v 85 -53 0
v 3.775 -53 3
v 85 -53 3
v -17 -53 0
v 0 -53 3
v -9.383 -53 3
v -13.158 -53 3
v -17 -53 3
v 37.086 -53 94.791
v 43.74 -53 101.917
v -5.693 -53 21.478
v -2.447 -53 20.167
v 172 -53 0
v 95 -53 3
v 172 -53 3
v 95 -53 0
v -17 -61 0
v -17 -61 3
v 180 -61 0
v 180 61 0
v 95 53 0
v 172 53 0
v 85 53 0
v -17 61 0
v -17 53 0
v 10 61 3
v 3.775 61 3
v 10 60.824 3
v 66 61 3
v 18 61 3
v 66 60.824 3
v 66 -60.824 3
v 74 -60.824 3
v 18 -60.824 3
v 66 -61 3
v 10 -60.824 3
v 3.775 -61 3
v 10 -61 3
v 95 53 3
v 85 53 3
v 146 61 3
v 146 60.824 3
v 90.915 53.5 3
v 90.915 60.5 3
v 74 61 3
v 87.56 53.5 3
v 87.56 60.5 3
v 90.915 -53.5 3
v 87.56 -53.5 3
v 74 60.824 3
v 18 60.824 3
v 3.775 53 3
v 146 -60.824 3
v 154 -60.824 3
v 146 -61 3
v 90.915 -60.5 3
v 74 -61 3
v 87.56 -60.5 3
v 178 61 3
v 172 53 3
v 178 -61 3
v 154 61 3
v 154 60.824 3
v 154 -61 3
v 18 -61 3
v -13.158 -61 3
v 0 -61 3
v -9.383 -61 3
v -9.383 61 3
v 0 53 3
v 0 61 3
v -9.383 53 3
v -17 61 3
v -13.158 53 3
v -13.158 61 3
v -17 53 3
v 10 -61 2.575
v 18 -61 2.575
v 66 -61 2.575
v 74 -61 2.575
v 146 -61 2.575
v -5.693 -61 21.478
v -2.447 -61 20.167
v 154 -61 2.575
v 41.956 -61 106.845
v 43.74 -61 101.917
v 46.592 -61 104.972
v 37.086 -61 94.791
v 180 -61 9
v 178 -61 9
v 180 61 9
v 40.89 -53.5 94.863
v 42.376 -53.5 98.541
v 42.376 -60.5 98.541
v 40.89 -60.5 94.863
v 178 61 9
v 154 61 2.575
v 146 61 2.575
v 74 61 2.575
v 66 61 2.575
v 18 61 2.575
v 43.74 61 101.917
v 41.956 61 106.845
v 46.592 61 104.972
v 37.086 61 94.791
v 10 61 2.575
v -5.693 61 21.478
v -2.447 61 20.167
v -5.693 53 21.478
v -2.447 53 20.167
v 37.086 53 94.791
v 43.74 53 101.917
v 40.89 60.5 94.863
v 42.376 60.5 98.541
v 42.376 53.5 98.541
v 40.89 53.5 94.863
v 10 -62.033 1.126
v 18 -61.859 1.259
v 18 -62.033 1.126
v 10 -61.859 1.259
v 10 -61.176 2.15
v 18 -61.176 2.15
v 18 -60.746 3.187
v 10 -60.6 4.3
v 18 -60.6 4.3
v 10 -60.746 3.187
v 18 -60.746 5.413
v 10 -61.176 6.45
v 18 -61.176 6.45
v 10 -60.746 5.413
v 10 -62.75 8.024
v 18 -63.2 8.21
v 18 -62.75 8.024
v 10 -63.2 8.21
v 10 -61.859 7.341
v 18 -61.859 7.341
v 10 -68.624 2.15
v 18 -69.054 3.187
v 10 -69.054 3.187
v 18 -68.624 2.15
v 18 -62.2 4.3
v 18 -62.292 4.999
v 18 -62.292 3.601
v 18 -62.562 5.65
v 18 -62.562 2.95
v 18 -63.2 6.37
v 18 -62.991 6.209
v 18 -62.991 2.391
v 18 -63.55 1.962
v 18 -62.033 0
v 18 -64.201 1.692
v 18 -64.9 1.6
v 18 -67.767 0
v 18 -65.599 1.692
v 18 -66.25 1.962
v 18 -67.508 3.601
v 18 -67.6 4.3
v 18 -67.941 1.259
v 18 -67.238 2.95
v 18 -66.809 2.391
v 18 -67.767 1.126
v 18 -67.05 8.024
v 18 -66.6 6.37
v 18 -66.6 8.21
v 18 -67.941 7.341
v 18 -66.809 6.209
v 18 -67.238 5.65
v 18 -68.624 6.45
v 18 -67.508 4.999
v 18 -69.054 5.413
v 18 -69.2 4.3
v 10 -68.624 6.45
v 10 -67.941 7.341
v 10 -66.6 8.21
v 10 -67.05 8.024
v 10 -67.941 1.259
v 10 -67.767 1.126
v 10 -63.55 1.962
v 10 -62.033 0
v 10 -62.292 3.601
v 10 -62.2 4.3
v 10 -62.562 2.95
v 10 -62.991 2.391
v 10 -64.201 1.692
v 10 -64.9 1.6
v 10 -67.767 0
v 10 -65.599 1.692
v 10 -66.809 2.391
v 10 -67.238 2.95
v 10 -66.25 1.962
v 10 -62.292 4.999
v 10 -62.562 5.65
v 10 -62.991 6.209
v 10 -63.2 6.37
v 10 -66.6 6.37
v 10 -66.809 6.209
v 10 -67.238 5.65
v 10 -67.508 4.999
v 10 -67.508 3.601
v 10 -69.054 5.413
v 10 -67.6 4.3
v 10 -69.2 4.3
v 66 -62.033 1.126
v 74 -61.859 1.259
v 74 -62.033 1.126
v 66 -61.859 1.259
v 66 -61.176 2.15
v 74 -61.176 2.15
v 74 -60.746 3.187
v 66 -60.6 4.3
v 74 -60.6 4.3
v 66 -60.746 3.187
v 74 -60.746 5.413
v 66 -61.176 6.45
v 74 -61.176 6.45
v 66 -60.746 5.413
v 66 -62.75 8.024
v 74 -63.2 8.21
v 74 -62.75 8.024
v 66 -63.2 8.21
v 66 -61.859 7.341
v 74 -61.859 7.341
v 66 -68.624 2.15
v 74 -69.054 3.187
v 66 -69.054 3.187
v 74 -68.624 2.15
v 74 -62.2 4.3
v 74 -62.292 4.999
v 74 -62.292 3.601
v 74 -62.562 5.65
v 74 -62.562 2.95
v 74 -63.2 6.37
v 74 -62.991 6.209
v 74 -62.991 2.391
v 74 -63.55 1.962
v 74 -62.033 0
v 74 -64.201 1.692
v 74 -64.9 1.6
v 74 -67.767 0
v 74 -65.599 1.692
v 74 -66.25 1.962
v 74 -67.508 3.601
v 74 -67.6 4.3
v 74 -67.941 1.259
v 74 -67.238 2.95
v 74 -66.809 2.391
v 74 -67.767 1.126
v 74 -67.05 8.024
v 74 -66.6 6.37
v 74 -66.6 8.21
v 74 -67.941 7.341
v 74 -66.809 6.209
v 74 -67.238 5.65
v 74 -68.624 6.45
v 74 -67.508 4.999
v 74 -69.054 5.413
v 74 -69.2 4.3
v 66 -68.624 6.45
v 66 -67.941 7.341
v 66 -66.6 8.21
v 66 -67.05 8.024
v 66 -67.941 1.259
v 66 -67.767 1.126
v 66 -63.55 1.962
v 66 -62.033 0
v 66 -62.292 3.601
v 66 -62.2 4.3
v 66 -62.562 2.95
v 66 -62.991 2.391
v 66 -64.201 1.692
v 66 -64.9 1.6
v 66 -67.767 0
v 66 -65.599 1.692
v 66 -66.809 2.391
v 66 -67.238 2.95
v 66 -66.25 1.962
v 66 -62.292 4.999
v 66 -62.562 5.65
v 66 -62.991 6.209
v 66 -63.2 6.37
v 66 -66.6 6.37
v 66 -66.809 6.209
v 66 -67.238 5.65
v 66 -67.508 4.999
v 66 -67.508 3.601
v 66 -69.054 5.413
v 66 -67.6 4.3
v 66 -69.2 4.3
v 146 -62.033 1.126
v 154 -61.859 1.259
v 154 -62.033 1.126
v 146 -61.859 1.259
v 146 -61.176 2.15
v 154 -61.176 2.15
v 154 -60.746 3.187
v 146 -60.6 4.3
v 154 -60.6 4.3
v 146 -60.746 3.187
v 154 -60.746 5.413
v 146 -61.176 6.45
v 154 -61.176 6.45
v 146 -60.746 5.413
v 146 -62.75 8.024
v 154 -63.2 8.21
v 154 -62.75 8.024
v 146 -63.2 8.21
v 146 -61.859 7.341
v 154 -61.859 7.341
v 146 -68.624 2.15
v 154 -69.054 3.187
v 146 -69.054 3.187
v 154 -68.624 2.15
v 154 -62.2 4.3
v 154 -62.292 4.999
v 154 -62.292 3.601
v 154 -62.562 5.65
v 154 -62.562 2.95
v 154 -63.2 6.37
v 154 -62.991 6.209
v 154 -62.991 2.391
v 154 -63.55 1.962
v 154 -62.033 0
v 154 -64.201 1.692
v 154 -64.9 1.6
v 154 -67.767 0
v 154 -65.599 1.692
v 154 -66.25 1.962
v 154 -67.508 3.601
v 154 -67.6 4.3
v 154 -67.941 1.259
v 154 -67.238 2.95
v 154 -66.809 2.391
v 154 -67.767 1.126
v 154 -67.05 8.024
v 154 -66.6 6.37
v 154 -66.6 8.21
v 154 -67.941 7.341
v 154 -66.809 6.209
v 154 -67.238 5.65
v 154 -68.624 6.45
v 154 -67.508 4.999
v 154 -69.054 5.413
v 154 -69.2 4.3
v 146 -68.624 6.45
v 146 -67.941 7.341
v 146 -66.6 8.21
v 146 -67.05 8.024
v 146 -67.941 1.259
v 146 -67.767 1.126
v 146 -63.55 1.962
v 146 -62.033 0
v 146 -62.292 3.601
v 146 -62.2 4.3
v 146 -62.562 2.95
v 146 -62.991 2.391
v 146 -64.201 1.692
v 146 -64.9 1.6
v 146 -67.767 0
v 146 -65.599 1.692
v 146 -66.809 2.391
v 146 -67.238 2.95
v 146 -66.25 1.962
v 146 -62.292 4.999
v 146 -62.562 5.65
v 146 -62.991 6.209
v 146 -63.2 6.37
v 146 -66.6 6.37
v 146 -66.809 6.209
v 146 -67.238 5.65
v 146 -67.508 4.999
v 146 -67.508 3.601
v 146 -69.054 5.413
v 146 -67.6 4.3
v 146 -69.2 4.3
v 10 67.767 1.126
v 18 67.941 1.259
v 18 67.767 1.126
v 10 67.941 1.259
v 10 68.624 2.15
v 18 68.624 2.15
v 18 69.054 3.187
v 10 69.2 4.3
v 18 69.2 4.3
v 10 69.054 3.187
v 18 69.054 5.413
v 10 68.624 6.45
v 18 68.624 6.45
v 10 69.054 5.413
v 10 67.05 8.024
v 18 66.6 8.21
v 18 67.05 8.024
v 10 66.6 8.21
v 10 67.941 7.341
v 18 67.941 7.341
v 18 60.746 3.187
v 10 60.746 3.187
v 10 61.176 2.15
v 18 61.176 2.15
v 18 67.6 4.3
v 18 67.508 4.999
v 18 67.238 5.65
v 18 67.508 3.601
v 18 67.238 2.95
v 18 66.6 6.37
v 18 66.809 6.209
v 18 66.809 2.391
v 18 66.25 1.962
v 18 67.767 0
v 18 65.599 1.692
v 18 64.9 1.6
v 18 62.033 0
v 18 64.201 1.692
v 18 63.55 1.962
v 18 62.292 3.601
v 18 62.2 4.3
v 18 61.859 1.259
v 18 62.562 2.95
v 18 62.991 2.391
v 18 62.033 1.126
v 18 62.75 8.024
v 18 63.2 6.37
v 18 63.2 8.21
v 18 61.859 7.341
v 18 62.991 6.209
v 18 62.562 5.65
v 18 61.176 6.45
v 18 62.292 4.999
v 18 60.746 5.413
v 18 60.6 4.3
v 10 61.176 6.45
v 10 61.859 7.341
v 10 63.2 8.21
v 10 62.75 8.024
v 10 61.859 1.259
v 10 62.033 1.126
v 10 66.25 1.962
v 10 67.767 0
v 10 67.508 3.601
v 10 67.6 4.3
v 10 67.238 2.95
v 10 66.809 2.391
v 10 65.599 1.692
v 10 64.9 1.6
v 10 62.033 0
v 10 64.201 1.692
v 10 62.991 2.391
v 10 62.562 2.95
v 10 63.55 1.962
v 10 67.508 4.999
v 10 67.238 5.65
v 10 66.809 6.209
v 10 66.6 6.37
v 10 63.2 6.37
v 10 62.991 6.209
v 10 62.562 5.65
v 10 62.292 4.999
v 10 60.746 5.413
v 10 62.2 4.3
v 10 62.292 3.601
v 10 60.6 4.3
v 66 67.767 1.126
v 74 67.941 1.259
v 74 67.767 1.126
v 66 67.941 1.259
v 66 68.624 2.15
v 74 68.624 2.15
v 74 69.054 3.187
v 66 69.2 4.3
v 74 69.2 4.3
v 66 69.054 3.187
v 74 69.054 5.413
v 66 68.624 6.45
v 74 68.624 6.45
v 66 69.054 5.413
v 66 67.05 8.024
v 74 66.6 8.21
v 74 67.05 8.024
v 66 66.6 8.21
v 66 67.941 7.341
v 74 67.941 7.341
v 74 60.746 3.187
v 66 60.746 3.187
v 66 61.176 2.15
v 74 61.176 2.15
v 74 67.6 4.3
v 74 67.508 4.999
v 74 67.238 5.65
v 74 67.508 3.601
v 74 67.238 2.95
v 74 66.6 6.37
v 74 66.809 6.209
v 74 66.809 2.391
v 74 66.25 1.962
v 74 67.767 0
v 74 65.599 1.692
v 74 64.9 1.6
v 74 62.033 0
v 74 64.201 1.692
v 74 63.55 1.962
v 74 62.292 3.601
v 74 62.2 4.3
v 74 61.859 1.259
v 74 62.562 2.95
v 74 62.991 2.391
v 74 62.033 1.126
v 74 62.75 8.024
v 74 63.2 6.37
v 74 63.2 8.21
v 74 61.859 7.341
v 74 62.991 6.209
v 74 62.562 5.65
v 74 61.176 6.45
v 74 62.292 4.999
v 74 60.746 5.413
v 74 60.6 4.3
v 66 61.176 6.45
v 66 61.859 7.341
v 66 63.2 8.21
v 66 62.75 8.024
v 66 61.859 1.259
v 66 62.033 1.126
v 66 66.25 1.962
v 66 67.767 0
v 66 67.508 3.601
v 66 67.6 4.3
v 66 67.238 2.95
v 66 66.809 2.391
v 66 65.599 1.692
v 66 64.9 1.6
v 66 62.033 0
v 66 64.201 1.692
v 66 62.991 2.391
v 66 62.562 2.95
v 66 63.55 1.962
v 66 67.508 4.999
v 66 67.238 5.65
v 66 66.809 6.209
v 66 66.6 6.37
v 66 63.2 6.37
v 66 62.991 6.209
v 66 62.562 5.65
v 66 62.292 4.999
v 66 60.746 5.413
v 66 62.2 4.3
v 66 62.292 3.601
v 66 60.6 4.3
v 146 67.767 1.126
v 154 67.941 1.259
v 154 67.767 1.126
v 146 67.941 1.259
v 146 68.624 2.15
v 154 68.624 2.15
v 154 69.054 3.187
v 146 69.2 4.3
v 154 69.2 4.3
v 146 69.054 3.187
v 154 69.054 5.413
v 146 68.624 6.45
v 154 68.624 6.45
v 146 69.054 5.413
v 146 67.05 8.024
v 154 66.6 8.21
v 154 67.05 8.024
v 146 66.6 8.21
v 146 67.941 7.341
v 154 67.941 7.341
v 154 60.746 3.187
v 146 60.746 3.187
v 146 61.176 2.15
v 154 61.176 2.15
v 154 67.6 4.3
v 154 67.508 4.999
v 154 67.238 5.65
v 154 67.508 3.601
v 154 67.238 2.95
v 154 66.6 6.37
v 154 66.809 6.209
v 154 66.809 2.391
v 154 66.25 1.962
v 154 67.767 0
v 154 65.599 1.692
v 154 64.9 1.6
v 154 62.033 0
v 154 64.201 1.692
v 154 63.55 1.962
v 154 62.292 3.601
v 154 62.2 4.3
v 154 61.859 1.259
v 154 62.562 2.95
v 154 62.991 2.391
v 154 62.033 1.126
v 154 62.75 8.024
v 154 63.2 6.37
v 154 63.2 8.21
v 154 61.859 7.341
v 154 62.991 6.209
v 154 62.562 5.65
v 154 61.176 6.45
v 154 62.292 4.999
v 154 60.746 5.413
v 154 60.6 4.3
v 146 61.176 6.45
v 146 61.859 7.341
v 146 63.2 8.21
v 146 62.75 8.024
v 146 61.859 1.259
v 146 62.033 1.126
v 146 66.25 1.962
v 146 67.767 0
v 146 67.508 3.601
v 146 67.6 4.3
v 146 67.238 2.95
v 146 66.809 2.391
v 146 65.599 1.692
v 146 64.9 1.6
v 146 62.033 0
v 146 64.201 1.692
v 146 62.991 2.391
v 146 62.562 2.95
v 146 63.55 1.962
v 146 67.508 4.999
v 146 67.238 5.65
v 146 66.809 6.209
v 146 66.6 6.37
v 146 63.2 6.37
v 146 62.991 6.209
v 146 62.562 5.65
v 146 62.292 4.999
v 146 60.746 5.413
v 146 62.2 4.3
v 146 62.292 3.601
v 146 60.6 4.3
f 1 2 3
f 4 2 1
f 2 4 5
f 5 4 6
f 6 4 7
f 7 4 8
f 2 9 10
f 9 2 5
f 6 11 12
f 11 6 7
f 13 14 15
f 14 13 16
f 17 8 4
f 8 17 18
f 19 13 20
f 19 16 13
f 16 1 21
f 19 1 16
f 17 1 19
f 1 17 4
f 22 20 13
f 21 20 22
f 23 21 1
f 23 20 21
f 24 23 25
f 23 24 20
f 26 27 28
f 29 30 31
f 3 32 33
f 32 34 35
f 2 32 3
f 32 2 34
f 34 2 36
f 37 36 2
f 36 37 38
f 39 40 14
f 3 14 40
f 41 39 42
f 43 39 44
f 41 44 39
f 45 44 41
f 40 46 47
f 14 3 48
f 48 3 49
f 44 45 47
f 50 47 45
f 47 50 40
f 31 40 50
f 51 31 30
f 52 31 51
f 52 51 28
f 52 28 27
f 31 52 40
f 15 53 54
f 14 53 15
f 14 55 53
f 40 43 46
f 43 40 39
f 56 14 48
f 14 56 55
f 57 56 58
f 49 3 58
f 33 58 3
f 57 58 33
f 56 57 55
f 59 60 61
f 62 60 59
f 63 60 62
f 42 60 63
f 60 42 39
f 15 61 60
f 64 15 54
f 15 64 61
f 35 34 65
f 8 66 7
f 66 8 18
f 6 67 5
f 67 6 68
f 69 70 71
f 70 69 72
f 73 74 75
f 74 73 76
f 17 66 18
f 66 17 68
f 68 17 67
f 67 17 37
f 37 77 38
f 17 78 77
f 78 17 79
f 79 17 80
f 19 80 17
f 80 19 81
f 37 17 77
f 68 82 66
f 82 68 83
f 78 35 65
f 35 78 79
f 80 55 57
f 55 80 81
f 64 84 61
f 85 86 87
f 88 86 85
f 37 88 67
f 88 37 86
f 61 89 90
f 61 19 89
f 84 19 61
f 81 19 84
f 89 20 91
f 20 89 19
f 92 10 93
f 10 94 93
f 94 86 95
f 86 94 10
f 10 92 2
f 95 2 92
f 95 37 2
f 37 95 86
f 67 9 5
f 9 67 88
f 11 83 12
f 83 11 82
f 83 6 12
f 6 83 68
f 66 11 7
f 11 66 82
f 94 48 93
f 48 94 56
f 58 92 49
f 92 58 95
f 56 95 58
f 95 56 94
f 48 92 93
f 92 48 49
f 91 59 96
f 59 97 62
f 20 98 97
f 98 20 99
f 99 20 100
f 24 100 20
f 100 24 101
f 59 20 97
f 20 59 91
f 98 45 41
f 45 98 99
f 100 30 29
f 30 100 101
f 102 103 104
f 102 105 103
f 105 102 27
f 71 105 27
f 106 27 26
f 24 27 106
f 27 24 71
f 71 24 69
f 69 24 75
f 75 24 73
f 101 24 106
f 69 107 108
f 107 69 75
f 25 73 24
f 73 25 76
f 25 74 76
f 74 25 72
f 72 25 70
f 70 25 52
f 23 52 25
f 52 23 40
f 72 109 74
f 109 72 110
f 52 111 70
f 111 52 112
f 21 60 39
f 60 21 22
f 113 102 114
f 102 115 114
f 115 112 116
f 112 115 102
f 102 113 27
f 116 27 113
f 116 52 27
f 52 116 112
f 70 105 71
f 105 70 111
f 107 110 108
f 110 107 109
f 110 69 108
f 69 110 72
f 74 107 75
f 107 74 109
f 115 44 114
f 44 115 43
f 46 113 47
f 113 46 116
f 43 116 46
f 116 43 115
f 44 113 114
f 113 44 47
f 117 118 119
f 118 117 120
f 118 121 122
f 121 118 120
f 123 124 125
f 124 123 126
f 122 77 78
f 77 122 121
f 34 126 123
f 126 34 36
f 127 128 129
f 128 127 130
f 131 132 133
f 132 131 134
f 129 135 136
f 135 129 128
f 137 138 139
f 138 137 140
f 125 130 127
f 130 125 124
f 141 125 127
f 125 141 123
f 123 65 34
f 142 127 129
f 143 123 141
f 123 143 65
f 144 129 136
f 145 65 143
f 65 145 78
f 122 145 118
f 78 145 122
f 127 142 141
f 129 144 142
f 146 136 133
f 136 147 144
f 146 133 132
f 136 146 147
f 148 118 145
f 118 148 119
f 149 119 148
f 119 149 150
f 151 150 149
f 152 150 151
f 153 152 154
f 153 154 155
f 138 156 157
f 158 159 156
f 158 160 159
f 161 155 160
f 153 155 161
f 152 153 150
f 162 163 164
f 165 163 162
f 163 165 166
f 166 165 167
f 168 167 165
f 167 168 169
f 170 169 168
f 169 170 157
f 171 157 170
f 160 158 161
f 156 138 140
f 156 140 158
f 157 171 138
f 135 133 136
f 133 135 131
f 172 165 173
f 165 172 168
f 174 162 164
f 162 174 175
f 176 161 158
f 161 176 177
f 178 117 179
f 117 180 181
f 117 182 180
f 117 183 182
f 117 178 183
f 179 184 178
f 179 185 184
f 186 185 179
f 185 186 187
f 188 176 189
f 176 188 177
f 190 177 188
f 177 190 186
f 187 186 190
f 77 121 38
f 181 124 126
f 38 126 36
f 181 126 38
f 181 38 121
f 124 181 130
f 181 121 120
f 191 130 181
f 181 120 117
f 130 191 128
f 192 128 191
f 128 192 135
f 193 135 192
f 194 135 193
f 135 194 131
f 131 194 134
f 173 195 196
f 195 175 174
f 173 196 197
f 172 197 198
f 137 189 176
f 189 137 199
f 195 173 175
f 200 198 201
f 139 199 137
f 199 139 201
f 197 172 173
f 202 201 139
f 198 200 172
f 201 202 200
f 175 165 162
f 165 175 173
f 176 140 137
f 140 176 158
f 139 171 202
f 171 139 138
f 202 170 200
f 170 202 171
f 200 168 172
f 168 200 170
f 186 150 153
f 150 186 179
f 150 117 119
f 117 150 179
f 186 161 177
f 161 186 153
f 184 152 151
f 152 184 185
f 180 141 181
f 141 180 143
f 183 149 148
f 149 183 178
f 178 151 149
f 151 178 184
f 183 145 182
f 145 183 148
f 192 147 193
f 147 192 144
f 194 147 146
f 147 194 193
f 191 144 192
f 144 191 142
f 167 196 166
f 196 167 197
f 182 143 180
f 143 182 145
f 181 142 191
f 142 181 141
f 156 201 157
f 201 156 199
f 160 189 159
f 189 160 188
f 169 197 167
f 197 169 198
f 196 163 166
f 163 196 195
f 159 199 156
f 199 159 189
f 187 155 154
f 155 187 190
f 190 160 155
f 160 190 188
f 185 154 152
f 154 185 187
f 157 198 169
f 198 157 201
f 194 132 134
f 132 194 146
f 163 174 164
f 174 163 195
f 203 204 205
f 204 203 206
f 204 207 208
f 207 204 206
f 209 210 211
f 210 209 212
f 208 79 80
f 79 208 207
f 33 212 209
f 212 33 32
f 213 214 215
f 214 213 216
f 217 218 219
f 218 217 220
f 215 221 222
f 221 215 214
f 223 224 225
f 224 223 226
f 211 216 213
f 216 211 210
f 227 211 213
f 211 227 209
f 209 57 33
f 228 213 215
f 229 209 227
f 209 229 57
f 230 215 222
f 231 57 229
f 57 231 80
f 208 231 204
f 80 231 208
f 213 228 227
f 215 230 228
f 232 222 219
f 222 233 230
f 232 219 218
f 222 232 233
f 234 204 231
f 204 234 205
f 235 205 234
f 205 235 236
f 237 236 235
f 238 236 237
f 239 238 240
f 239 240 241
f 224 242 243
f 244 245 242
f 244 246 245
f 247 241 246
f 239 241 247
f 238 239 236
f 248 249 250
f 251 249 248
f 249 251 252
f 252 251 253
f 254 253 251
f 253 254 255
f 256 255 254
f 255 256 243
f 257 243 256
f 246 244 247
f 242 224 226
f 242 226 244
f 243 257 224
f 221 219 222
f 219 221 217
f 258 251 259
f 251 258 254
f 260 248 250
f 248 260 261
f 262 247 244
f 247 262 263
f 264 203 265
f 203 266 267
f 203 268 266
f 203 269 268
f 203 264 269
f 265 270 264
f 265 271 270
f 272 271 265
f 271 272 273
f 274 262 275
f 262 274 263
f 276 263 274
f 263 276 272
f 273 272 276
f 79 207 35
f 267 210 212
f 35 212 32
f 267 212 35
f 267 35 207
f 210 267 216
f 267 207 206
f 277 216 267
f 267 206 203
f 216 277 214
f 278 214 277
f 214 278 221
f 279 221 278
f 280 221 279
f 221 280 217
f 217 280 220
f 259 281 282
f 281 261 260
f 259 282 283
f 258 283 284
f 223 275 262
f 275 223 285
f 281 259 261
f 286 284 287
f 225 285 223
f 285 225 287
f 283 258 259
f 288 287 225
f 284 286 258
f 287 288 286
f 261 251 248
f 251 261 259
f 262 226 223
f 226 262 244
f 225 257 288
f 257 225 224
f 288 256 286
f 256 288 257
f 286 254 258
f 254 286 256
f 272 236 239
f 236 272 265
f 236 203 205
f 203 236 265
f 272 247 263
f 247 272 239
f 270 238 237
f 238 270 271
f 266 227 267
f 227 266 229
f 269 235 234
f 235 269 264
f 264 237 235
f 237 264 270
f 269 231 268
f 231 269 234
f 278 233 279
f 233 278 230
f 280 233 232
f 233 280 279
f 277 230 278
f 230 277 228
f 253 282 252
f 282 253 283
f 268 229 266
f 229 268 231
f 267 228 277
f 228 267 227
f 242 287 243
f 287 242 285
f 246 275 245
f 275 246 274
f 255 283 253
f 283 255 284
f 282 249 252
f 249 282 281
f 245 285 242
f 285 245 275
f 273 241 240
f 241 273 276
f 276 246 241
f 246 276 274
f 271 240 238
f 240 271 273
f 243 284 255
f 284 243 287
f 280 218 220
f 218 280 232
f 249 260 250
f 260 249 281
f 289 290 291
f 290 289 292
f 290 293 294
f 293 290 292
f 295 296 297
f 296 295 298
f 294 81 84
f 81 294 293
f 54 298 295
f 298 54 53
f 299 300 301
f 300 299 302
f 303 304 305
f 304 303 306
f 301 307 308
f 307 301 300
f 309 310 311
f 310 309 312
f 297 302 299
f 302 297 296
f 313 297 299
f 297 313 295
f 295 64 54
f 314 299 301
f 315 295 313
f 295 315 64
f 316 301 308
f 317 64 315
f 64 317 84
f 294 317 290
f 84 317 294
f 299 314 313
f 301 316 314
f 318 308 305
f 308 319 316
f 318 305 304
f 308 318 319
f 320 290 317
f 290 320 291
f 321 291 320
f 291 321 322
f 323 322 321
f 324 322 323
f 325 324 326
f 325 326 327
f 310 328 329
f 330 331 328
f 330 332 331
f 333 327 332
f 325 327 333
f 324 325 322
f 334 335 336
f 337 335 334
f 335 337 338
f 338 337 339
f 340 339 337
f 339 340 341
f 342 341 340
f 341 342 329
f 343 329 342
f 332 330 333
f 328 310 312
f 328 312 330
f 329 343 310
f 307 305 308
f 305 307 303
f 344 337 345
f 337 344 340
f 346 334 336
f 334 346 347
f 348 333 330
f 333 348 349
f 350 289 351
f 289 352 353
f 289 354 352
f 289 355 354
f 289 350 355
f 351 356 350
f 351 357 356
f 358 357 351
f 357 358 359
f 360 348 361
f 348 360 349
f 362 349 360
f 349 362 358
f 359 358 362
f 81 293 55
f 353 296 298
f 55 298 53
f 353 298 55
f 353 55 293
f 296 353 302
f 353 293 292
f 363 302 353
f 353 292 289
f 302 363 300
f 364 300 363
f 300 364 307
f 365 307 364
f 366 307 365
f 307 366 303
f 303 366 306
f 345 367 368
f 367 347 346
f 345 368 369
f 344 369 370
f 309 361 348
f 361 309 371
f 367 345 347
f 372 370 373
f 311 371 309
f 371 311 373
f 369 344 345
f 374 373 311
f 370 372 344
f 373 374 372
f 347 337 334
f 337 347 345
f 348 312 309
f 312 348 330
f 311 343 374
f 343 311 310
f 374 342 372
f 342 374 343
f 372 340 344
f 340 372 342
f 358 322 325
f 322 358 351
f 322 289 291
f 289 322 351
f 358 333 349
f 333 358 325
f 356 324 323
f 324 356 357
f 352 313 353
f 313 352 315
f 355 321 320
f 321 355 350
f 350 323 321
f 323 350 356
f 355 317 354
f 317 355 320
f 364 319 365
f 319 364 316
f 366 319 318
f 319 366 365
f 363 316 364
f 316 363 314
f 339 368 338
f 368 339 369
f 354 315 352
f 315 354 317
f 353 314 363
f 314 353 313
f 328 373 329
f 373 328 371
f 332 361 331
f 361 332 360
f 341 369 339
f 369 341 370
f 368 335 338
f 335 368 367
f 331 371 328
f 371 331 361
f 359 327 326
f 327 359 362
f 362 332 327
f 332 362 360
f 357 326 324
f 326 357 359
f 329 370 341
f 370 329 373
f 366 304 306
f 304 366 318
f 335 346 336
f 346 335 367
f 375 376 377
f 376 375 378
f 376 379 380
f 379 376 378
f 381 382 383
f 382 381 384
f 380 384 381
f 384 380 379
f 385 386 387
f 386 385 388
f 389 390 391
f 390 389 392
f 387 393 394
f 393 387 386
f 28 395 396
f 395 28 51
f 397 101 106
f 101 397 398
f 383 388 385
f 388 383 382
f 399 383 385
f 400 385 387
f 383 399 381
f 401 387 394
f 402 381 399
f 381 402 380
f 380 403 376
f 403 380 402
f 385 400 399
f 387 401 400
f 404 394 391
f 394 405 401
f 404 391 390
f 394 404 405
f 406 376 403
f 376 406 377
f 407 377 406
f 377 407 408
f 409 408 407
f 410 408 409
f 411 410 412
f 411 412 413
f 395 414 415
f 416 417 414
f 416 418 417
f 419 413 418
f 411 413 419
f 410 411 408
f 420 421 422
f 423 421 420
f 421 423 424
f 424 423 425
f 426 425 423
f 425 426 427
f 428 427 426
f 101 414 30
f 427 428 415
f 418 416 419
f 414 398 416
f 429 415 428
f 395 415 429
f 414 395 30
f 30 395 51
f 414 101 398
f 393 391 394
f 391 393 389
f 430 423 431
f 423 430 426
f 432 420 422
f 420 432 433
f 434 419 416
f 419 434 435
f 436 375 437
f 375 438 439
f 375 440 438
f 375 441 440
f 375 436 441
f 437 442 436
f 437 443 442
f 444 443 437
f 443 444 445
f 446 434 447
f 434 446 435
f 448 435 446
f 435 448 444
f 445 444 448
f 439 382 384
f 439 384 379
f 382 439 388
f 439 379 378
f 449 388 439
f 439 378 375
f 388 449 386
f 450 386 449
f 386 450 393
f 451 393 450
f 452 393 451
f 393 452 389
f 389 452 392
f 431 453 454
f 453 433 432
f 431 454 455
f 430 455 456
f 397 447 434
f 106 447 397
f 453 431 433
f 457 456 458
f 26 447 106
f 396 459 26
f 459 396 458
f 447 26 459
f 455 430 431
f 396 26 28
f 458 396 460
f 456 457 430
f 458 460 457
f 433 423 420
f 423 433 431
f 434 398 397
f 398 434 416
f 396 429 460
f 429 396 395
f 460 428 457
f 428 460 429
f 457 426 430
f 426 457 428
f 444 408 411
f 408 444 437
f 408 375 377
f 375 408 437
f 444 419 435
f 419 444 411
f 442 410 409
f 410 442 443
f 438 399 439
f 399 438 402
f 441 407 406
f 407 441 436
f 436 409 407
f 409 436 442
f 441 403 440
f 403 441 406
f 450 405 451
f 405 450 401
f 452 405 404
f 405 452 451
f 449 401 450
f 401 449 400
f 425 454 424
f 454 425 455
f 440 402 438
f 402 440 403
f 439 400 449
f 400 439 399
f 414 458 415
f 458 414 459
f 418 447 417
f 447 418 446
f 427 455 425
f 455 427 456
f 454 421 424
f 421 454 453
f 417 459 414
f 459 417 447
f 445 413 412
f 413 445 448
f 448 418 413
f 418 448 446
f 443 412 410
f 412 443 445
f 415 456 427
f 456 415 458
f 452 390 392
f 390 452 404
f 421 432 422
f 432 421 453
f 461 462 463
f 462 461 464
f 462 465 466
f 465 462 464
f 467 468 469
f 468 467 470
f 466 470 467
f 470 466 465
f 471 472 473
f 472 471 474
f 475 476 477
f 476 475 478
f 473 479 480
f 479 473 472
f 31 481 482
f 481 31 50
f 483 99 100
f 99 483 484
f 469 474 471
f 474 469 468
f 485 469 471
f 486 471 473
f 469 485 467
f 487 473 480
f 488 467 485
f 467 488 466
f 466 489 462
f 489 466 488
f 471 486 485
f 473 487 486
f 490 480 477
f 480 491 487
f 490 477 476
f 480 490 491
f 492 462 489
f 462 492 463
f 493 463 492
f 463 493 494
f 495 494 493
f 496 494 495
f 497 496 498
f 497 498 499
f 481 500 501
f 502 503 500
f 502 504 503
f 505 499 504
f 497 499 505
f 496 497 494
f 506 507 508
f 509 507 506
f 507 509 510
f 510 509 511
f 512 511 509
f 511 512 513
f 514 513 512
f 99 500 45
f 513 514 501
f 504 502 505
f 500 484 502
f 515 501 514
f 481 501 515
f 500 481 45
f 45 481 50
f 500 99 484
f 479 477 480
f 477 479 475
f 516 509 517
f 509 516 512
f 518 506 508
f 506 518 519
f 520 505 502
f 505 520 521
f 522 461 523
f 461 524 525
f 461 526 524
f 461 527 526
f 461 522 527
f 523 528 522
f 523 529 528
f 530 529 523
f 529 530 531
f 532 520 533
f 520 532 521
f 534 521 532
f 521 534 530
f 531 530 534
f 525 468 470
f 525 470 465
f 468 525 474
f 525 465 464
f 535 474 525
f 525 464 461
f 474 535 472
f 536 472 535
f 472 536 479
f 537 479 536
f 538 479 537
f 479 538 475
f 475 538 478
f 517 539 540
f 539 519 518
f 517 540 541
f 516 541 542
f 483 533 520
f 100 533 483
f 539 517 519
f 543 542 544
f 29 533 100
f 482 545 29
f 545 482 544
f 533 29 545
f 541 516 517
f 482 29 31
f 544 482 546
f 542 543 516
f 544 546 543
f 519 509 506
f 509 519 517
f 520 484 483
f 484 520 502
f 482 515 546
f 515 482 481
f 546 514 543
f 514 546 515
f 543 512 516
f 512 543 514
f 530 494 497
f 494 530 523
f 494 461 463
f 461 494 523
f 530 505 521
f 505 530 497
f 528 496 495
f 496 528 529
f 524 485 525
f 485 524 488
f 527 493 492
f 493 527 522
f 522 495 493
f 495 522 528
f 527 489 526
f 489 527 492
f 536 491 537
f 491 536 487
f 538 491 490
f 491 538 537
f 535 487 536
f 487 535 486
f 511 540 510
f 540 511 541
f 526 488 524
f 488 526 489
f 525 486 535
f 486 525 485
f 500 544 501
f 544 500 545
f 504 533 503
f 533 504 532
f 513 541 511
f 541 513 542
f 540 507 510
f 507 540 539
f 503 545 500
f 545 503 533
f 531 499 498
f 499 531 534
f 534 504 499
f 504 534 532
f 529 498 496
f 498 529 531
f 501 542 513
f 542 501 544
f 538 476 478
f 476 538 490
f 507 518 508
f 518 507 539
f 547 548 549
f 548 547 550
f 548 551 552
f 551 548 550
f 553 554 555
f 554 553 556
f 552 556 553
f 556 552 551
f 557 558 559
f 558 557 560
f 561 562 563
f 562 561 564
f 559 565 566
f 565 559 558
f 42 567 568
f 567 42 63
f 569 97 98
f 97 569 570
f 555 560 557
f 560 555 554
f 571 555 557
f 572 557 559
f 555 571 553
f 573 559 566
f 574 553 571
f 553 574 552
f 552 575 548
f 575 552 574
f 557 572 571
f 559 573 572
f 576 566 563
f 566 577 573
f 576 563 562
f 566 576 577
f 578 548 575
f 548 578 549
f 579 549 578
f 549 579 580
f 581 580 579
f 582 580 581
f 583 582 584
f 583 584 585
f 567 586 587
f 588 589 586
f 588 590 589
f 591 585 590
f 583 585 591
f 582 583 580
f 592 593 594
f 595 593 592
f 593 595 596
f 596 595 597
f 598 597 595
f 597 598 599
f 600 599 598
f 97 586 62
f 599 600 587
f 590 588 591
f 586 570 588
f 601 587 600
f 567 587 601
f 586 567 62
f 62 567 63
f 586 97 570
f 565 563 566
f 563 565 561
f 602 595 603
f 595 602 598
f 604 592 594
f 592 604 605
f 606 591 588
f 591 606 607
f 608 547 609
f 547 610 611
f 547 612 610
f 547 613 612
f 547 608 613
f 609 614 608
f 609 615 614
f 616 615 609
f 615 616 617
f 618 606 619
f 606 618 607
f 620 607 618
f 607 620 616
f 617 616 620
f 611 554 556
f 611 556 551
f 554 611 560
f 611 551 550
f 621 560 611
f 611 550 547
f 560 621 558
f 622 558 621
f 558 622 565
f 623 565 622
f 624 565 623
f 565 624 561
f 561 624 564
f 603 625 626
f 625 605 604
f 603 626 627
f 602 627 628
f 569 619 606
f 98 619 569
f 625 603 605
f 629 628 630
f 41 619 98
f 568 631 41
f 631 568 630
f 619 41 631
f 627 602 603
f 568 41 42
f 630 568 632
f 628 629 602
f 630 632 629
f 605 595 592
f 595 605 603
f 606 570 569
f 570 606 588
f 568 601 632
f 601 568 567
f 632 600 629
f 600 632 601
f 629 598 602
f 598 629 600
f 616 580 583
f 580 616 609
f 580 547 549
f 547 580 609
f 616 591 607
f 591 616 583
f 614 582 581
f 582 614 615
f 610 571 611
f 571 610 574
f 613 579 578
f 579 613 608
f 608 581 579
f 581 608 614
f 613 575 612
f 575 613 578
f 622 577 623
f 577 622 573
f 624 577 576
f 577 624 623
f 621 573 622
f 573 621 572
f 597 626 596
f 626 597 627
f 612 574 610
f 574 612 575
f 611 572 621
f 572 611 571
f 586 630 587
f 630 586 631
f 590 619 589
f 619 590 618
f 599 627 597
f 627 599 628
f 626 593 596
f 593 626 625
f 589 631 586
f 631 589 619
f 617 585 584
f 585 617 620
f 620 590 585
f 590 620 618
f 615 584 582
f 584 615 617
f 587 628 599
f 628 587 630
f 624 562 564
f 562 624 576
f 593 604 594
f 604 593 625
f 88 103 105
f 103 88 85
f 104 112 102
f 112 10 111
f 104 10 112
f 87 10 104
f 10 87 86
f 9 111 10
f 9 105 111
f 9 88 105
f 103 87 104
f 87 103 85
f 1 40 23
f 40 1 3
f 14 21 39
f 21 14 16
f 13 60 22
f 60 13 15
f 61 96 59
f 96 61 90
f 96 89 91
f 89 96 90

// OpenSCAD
// Desk Display stand: Lenovo Tab M10 FHD REL (TB-X605L/LC), landscape, Echo-Show style lean.
// One piece, prints with NO supports, flat on the bed. Open truss design = least possible filament.
//
// Tablet: 242 x 168 x 8.1 mm (Lenovo spec). If the tablet is in a case, raise 'case' by the extra thickness.
// Everything is a parameter. Set preview_ghosts=true to see the tablet and a speaker in the model.

$fn = 24;

// ---------- tablet ----------
TW = 242;        // width in landscape
TH = 168;        // height in landscape
TT = 8.1;        // thickness
case = 0;        // extra thickness if it wears a case (mm)
clear = 0.6;     // slack in the bottom lip

// ---------- stand ----------
lean   = 22;     // degrees back from vertical (Echo Show 8 is about 20-25)
zb     = 3;      // rail / platform thickness
rail_y = 57;     // rails sit under the tablet at +-57 mm from the centre
rail_w = 8;      // rail width
post_t = 3.5;     // post thickness
post_w = 8; 
strut_t = 3;  
strut_w = 7;
post_len = 112;  // how far up the tablet back the posts reach (tablet is 168 tall)
bar_h  = 13;     // height of the wedge that joins the posts and touches the tablet back
bar_d  = 5;      // depth of that wedge
lip_h  = 15;     // front lip height measured along the tablet
lip_t  = 3.5;

// ---------- speaker platform (behind the stand) ----------
x_d   = 90;      // where the platform starts (the strut lands here)
pd    = 90;      // platform depth. Speaker footprint should fit in rail_y*2-rail_w wide x this
rear_lip = 6;    // little wall at the very back so the speaker cannot slide off

// ---------- cable clips ----------
clip_id  = 5.4;  // fits a 3.5 mm AUX cable and a normal USB cable
clip_wall = 1.6;
clip_len = 8;
clip_slit = 3.4; // slit is narrower than the cable so it snaps in
clip_x = [14, 70, 150];

preview_ghosts = false;

TTT = TT + case;
th = lean;
x_end = x_d + pd;

function Lp(x, z) = [x * cos(th) + z * sin(th), zb - x * sin(th) + z * cos(th)];  // tablet-frame -> world (x, z)

module L() { translate([0, 0, zb]) rotate([0, th, 0]) children(); }

// extrude a 2D shape that lives in the x/z plane, at world y, width w
module slab(y, w) { translate([0, y, 0]) rotate([90, 0, 0]) linear_extrude(height = w, center = true) children(); }

module member(p1, p2, t, y, w) {
    slab(y, w) hull() { translate(p1) circle(d = t, $fn = 16); translate(p2) circle(d = t, $fn = 16); }
}

module clip(y, x, side) {
    // C-shaped ring around the x axis, opening upwards, sitting outside the rail
    od = clip_id + 2 * clip_wall;
    translate([x, y + side * (rail_w / 2 + od / 2 - 0.4), od / 2])
    rotate([0, 90, 0]) translate([0, 0, -clip_len / 2])
    difference() {
        union() {
            cylinder(d = od, h = clip_len);
            // flat foot so it sticks to the bed (local +x = down)
            translate([0, -od / 3, 0]) cube([od / 2, 2 * od / 3, clip_len]);
        }
        translate([0, 0, -1]) cylinder(d = clip_id, h = clip_len + 2);
        // slit pointing up (world +z = local -x after rotate)
        translate([-od, -clip_slit / 2, -1]) cube([od, clip_slit, clip_len + 2]);
    }
}

module stand() {
    for (s = [-1, 1]) {
        y = s * rail_y;
        // rail: from in front of the lip to the back of the platform
        slab(y, rail_w) translate([-17, 0]) square([x_end + 17, zb]);

        // post: leans with the tablet, behind it
        L() translate([0, y - post_w / 2, 0]) cube([post_t, post_w, post_len]);

        // lip: the tablet's bottom edge sits against it
        L() translate([-TTT - clear - lip_t, y - rail_w / 2, -10]) cube([lip_t, rail_w, 10 + lip_h]);

        // strut: top of the post down to the platform front
        p1 = Lp(post_t / 2, post_len - 8);
        member(p1, [x_d, zb / 2], strut_t, y, strut_w);
    }

    // wedge across the top of the posts: the tablet leans on its flat face; steep underside prints without supports
    L() translate([0, rail_y + post_w / 2, 0]) rotate([90, 0, 0])
        linear_extrude(height = 2 * rail_y + post_w)
            polygon([[0, post_len - bar_h], [0, post_len], [bar_d, post_len]]);

    // platform cross bars
    slab_bar = 8;
    translate([x_d - 5, -rail_y - rail_w / 2, 0]) cube([10, 2 * rail_y + rail_w, zb]);
    translate([x_end - slab_bar, -rail_y - rail_w / 2, 0]) cube([slab_bar, 2 * rail_y + rail_w, zb]);
    // little lip at the back
    translate([x_end - 2, -rail_y - rail_w / 2, 0]) cube([2, 2 * rail_y + rail_w, zb + rear_lip]);

    // cable clips on both outer sides
    for (s = [-1, 1]) for (cx = clip_x) clip(s * rail_y, cx, s);
}

intersection() {
    stand();
    translate([-100, -300, 0]) cube([600, 600, 400]);   // nothing below the bed
}

if (preview_ghosts) {
    %L() translate([-TT, -TW / 2, 0]) cube([TT, TW, TH]);                     // tablet
    %translate([x_d + 10, -45, zb]) cube([pd - 20, 90, 60]);                  // speaker block (example)
}
